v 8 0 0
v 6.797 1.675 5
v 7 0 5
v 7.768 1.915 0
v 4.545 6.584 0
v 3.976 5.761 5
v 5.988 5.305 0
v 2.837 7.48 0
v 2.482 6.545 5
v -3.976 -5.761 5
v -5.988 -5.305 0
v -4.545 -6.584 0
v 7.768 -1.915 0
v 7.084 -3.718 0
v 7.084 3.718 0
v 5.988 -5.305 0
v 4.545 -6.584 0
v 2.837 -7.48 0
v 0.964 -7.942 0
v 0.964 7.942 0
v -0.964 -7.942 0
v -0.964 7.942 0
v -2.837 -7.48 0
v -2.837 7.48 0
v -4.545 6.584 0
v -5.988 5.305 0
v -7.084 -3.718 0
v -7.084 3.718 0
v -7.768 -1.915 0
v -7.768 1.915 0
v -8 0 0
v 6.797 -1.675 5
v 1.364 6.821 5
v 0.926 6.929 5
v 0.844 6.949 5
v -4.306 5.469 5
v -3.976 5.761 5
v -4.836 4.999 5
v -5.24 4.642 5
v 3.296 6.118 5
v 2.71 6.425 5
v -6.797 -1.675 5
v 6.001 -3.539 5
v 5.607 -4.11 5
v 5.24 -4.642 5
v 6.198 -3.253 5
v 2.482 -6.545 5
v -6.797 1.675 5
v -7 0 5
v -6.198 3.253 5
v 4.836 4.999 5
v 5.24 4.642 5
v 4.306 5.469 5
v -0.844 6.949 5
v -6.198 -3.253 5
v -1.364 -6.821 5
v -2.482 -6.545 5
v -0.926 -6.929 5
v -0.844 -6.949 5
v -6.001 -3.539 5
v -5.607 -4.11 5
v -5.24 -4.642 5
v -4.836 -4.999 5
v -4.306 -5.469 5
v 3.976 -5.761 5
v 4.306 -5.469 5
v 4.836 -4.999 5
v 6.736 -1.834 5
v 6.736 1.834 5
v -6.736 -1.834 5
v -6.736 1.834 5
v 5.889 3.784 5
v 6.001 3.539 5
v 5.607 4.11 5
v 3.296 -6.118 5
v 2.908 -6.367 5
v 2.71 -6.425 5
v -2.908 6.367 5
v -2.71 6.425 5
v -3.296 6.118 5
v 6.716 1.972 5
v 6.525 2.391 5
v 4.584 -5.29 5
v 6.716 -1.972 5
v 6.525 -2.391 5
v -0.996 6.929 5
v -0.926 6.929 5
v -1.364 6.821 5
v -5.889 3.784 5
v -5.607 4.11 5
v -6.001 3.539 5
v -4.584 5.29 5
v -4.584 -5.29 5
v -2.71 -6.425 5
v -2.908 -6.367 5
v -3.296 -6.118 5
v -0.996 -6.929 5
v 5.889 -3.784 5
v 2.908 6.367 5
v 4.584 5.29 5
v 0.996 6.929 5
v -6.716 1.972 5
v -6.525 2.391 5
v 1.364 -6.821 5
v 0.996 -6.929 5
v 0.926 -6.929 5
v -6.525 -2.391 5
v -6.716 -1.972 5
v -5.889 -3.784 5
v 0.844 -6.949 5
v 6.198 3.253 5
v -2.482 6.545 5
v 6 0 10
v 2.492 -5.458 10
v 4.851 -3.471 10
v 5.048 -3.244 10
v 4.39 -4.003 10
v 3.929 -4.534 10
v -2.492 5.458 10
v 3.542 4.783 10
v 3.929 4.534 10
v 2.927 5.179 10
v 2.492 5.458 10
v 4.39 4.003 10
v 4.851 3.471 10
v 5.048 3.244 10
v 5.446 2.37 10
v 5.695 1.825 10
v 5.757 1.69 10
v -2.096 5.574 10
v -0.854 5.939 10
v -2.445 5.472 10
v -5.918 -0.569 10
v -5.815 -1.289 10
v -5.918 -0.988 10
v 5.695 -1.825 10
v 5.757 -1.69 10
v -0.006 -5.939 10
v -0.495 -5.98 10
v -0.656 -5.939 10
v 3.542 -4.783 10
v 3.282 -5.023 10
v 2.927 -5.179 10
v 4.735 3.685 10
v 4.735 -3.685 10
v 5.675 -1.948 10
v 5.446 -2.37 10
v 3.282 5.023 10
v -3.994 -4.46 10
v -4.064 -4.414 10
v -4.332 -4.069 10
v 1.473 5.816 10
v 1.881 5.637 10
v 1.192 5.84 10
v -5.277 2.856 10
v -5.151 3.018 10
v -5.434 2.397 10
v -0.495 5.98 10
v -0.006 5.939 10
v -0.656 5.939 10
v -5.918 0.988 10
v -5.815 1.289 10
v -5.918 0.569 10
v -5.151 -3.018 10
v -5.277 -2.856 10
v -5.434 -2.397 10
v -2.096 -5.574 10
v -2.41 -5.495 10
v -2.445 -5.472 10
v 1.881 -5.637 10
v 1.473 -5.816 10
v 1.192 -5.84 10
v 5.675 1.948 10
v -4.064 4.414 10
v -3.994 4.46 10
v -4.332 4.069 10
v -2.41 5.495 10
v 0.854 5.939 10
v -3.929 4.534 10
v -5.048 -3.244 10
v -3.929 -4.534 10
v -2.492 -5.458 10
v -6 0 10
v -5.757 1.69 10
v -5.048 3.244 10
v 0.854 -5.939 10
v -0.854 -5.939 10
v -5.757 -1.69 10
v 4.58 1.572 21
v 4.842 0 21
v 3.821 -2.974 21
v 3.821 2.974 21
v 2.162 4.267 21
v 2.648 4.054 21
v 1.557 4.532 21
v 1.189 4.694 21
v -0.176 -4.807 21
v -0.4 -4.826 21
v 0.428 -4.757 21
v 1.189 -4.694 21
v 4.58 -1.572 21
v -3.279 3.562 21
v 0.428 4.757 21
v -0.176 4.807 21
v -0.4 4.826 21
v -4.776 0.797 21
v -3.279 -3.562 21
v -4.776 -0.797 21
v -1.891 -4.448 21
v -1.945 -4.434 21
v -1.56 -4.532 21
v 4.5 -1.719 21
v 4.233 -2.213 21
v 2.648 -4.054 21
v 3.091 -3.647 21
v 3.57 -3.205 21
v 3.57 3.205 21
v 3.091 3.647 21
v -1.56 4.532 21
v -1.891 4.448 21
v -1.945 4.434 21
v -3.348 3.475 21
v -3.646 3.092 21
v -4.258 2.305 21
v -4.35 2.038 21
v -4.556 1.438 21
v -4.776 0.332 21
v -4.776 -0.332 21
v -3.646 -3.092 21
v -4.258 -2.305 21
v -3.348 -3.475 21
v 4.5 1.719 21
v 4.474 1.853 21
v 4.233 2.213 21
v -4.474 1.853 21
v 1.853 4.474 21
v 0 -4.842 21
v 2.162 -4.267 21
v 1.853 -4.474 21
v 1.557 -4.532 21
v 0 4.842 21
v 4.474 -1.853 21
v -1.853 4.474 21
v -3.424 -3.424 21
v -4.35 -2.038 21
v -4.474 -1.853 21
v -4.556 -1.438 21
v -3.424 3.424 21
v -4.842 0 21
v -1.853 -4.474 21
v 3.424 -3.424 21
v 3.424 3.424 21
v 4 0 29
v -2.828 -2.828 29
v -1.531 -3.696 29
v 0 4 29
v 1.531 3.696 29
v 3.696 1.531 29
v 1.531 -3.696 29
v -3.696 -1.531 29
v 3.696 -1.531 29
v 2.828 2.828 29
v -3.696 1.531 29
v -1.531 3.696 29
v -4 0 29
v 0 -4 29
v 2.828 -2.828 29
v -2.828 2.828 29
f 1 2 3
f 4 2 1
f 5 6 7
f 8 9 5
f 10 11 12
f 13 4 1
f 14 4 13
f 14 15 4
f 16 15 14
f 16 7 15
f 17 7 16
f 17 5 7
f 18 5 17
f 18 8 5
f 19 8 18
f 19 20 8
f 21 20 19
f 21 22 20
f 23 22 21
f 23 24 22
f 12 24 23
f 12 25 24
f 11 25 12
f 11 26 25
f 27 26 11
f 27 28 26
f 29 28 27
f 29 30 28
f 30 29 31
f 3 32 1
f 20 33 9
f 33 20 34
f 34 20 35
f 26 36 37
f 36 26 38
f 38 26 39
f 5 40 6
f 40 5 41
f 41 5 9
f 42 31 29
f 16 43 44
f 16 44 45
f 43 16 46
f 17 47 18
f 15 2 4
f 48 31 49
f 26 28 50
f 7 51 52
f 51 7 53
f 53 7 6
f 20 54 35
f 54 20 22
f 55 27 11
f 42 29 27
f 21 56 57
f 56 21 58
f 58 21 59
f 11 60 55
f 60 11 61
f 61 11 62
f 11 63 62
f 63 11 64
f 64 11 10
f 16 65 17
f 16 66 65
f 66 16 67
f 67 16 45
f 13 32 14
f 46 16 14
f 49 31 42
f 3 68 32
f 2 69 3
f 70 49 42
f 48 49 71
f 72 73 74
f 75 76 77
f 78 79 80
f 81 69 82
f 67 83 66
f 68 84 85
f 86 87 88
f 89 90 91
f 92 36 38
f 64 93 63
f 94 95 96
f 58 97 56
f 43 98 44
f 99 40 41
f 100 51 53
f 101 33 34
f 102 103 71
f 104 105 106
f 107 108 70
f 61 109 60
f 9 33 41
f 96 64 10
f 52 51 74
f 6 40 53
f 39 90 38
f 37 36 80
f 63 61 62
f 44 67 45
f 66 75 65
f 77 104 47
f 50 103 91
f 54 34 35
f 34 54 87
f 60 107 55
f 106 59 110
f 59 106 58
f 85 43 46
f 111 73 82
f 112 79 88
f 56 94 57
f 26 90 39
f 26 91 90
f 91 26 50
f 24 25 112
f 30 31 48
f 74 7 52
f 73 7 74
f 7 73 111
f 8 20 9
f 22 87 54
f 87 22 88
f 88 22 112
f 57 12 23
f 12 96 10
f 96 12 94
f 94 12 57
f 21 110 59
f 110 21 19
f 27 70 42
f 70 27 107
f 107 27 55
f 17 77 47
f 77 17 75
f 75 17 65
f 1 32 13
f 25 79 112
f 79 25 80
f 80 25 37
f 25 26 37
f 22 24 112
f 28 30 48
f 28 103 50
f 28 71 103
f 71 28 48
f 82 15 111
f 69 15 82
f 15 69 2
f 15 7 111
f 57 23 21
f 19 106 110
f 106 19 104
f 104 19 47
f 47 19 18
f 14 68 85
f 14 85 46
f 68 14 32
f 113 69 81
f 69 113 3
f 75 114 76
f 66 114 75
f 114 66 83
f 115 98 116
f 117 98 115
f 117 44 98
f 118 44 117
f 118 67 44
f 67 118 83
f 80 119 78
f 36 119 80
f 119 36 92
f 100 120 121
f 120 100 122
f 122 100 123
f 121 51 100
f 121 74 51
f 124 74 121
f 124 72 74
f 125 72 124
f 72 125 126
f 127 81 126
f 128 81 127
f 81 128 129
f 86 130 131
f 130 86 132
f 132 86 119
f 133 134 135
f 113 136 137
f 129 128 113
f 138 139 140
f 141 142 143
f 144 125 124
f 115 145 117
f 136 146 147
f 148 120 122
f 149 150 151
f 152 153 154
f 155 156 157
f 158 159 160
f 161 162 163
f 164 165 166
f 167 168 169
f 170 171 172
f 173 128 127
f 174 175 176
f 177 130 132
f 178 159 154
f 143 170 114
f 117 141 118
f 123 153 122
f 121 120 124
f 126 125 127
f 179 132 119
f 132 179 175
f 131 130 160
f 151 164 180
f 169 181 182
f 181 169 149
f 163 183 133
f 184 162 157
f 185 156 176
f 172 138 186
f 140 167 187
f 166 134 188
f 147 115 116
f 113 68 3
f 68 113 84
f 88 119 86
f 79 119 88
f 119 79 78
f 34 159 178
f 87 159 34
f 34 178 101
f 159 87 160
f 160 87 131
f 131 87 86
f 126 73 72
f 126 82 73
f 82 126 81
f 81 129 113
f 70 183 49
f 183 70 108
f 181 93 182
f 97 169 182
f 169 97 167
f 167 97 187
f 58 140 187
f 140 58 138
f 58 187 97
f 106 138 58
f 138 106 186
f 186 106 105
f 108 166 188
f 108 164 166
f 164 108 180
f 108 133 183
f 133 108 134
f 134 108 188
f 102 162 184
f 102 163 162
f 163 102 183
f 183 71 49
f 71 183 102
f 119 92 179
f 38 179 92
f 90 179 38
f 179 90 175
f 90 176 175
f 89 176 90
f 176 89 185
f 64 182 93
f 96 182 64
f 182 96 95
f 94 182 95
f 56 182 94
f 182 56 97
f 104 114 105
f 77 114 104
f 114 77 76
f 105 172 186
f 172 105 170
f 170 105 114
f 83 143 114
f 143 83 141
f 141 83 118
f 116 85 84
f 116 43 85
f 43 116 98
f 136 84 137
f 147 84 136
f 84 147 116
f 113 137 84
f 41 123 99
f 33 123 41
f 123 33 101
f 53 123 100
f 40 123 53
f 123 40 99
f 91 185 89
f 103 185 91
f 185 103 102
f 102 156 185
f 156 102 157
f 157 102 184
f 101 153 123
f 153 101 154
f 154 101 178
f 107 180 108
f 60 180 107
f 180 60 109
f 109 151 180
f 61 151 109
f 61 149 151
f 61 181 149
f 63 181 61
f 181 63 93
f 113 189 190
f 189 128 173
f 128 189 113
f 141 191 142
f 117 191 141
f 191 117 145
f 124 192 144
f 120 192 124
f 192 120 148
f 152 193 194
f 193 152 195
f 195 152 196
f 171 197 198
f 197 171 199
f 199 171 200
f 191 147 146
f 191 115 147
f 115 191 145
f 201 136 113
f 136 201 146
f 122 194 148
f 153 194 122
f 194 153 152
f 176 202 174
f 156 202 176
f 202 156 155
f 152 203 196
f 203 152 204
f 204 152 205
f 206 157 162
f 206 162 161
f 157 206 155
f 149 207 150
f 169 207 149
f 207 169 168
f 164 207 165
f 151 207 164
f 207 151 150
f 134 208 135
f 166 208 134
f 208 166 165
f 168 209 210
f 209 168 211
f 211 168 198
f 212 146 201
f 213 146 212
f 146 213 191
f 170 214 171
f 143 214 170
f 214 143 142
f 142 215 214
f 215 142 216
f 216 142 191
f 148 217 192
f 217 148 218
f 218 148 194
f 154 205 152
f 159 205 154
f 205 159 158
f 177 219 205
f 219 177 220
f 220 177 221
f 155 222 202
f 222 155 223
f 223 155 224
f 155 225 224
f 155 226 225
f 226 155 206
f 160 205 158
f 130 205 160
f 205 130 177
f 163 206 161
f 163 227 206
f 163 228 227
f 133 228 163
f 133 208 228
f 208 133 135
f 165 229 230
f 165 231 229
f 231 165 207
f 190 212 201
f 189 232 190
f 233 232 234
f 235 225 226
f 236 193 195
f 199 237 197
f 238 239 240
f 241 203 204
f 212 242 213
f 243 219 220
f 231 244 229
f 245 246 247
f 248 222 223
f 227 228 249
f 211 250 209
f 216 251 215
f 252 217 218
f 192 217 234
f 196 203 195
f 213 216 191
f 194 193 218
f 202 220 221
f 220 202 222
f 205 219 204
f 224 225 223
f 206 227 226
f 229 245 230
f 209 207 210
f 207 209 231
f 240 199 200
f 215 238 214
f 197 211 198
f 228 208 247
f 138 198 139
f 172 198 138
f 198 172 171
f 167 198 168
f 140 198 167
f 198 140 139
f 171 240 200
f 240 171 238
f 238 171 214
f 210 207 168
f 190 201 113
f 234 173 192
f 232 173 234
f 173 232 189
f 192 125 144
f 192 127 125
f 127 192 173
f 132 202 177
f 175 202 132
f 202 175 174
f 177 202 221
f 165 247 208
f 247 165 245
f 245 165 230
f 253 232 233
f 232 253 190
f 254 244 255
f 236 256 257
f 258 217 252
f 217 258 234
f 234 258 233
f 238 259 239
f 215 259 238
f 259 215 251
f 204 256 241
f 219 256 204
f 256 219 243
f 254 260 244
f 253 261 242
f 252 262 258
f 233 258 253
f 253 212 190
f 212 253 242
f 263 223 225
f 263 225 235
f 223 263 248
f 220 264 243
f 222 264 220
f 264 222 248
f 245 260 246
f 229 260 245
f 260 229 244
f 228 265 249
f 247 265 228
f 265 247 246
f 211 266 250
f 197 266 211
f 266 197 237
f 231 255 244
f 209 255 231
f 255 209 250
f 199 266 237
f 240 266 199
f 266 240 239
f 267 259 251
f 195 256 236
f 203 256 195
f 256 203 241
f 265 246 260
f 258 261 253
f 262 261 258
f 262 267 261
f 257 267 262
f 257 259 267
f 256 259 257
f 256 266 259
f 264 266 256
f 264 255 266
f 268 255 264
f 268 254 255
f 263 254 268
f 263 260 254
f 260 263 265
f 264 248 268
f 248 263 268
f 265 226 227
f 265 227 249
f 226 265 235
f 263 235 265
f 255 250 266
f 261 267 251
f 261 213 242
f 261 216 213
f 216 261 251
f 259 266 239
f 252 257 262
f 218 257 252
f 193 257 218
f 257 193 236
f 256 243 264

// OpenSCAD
module lamp(r_top, r_lamp, r_middle, r_base, h_top, h_lamp, h_base_top, h_base_bottom) {
    
    // Poprawiona formuła r_upper_lamp
    r_upper_lamp = r_top+(((r_lamp - r_top)*h_top) / (h_lamp + h_top));
    
    // Podstawa
    cylinder(h_base_bottom, r1=r_base, r2=r_middle);

    // Górna część podstawy
    translate([0,0,h_base_bottom])
    cylinder(h_base_top, r1=r_middle, r2=r_lamp);

    // Główna część lampy
    translate([0,0,h_base_bottom + h_base_top])
    cylinder(h_lamp, r1=r_lamp, r2=r_upper_lamp);

    // Górna część lampy
    translate([0,0,h_base_bottom + h_base_top + h_lamp])
    cylinder(h_top, r1=r_upper_lamp, r2=r_top);
}

lamp(
    r_top = 4,
    r_lamp = 6,
    r_middle = 7,
    r_base = 8,
    h_top = 8,
    h_lamp = 11,
    h_base_top = 5,
    h_base_bottom = 5
);
